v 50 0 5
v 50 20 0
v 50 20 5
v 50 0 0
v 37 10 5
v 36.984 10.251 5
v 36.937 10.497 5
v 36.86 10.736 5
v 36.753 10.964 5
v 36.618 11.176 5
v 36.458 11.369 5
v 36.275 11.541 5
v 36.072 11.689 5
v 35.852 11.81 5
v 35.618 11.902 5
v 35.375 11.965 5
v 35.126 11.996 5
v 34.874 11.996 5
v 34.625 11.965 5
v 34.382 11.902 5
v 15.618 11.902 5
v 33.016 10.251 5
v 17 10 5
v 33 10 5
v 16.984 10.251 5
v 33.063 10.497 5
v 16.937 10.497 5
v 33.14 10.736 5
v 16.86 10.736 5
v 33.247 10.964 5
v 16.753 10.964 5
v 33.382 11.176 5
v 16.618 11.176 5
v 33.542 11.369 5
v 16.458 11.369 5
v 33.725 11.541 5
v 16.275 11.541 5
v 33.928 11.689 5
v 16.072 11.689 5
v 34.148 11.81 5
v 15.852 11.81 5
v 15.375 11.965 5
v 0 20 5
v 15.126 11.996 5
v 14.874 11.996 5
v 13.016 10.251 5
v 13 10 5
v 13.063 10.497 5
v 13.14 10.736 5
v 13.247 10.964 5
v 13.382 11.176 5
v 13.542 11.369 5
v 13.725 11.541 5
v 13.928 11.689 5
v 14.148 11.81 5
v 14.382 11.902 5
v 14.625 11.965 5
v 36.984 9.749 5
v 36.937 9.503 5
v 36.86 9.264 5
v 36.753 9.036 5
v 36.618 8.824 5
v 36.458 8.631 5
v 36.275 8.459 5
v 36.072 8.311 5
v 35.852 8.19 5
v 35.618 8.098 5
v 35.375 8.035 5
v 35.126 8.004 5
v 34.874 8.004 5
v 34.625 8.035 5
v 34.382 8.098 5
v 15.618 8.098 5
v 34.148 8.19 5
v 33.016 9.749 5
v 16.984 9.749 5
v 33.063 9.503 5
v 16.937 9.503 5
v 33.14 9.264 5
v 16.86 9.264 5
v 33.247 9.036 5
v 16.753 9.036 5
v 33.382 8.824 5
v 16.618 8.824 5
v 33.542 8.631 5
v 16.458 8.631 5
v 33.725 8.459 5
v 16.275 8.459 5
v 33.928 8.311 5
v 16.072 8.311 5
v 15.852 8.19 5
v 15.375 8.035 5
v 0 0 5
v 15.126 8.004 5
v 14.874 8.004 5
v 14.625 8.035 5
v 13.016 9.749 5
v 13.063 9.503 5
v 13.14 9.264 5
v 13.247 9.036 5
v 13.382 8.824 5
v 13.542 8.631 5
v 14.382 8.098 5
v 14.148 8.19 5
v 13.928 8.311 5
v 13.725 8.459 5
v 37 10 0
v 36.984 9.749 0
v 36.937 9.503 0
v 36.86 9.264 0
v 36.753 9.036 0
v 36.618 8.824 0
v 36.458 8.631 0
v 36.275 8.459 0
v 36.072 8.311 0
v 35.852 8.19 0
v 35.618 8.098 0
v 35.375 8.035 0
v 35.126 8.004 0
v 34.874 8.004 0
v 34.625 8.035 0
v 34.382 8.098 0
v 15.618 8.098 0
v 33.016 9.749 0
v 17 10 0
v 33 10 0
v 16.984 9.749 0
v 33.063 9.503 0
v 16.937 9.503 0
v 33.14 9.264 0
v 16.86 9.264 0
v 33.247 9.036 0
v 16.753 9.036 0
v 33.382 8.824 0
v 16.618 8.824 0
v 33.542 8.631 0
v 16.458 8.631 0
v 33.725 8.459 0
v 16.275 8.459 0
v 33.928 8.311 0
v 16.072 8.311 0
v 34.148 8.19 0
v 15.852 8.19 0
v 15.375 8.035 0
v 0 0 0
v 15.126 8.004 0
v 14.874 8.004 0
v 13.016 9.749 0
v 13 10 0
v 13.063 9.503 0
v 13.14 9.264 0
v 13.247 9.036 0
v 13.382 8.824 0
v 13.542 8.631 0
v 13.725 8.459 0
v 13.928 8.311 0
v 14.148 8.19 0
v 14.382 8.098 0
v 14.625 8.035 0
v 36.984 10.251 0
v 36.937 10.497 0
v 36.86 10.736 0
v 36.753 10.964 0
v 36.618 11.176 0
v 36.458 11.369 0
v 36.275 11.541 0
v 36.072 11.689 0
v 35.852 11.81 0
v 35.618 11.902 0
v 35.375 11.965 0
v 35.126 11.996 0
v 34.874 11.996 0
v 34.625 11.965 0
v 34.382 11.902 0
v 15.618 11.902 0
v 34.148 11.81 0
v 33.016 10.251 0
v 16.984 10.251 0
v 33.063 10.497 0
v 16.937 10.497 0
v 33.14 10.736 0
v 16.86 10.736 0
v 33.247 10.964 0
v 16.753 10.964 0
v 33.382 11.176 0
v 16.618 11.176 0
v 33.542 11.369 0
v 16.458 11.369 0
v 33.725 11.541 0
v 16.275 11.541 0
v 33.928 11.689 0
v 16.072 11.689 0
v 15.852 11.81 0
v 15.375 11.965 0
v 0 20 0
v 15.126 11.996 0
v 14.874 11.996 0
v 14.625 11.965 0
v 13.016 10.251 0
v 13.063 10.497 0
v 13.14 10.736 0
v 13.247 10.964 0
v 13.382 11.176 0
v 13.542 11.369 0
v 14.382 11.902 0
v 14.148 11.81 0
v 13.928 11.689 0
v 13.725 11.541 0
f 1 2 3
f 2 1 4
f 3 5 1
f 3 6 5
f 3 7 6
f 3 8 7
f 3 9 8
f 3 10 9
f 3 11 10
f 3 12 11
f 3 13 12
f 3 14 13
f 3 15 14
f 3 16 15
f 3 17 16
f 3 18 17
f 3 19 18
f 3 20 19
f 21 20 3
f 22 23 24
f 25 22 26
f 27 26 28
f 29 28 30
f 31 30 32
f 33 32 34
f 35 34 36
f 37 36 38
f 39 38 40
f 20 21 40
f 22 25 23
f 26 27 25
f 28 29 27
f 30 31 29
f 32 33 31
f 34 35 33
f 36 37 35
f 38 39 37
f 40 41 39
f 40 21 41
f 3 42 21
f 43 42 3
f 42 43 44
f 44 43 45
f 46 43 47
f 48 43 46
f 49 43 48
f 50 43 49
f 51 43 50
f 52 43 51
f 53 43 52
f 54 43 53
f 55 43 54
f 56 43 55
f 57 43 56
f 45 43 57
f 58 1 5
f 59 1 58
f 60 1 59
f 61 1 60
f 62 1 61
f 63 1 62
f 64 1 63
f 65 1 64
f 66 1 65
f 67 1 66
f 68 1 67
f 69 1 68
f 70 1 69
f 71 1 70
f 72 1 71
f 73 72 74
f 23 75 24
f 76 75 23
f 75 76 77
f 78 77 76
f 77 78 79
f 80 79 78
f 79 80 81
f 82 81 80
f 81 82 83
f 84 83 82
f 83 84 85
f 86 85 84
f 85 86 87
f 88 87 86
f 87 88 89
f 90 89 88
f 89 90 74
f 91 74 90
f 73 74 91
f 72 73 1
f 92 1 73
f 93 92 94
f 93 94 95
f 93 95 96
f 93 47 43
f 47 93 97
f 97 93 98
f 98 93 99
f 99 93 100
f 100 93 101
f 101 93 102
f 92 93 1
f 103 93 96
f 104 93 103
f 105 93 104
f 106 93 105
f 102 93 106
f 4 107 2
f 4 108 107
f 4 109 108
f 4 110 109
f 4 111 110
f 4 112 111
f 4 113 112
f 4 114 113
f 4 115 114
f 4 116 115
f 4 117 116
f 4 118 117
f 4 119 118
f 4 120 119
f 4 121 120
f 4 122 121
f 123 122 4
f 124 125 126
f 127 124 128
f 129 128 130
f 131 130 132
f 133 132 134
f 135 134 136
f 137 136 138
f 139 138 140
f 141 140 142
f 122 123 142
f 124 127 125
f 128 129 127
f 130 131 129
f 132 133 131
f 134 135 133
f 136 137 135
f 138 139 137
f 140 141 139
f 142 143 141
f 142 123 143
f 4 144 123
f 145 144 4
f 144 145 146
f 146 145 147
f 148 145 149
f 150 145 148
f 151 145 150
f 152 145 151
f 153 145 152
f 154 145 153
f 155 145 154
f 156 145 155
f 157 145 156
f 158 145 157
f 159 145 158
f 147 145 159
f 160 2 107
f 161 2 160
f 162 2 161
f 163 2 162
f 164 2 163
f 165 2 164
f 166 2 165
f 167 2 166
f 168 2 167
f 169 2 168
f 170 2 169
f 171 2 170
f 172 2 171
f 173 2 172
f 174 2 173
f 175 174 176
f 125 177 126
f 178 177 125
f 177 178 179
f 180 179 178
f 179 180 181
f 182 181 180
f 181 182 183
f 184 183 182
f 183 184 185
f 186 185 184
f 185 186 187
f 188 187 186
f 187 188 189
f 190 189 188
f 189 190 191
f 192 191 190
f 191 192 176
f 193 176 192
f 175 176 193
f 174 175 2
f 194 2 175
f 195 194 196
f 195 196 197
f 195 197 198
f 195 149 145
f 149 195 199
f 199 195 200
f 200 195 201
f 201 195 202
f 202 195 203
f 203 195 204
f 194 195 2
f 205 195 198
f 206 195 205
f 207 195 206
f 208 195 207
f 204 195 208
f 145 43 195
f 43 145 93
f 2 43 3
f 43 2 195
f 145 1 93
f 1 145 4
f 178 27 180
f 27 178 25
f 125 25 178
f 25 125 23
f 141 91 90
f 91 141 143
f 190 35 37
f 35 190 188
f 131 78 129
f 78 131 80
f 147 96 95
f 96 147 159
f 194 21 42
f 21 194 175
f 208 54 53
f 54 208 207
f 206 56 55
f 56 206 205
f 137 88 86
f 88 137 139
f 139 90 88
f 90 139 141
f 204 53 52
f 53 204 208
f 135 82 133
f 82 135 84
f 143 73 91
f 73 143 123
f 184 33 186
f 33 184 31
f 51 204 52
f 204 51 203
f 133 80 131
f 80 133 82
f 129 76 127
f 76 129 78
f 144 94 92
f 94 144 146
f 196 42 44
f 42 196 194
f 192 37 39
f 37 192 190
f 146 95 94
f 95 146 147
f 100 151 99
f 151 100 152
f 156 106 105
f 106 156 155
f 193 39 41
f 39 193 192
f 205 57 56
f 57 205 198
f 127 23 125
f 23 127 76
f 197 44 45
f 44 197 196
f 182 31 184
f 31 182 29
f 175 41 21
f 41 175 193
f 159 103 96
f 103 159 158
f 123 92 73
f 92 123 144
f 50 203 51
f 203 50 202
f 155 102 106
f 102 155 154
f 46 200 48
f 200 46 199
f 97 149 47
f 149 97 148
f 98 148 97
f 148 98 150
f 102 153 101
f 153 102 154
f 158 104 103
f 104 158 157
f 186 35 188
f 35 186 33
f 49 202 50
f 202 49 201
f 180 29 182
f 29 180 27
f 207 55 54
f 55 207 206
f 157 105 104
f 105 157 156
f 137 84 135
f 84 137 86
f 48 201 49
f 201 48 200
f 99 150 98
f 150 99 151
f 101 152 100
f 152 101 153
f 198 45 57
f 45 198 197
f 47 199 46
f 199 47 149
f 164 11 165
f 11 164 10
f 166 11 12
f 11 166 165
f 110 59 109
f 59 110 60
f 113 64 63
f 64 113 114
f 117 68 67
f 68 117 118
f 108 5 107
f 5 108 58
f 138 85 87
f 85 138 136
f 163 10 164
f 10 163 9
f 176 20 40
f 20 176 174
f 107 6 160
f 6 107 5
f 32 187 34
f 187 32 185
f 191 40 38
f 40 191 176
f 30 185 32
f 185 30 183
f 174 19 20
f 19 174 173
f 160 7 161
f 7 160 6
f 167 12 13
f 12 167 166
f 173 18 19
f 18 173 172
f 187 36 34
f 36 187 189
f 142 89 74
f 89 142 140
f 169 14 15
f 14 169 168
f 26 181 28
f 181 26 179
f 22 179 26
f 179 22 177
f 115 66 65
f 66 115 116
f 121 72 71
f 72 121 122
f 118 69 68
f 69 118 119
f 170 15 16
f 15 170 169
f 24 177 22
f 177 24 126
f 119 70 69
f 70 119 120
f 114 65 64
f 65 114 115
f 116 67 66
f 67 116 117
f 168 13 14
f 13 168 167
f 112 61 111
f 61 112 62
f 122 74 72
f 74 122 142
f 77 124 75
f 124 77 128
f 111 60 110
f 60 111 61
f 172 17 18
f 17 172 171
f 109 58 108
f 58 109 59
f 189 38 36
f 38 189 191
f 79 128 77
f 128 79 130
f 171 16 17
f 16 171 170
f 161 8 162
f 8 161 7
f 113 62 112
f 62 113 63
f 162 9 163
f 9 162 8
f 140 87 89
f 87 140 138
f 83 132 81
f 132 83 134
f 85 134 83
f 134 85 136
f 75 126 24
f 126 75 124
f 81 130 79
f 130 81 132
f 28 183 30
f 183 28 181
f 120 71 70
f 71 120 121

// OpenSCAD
module bracket(width, height, thickness, hole_diameter, hole_distance) {
  difference() {
    cube([width, height, thickness]);
    translate([hole_distance, height/2, -0.1])
    cylinder(h=thickness + 0.1, r=hole_diameter/2, $fn=50);
    translate([width - hole_distance, height/2, -0.1])
    cylinder(h=thickness + 0.1, r=hole_diameter/2, $fn=50);
  }
}

bracket(width = 50, height = 20, thickness = 5, hole_diameter = 4, hole_distance = 15);
